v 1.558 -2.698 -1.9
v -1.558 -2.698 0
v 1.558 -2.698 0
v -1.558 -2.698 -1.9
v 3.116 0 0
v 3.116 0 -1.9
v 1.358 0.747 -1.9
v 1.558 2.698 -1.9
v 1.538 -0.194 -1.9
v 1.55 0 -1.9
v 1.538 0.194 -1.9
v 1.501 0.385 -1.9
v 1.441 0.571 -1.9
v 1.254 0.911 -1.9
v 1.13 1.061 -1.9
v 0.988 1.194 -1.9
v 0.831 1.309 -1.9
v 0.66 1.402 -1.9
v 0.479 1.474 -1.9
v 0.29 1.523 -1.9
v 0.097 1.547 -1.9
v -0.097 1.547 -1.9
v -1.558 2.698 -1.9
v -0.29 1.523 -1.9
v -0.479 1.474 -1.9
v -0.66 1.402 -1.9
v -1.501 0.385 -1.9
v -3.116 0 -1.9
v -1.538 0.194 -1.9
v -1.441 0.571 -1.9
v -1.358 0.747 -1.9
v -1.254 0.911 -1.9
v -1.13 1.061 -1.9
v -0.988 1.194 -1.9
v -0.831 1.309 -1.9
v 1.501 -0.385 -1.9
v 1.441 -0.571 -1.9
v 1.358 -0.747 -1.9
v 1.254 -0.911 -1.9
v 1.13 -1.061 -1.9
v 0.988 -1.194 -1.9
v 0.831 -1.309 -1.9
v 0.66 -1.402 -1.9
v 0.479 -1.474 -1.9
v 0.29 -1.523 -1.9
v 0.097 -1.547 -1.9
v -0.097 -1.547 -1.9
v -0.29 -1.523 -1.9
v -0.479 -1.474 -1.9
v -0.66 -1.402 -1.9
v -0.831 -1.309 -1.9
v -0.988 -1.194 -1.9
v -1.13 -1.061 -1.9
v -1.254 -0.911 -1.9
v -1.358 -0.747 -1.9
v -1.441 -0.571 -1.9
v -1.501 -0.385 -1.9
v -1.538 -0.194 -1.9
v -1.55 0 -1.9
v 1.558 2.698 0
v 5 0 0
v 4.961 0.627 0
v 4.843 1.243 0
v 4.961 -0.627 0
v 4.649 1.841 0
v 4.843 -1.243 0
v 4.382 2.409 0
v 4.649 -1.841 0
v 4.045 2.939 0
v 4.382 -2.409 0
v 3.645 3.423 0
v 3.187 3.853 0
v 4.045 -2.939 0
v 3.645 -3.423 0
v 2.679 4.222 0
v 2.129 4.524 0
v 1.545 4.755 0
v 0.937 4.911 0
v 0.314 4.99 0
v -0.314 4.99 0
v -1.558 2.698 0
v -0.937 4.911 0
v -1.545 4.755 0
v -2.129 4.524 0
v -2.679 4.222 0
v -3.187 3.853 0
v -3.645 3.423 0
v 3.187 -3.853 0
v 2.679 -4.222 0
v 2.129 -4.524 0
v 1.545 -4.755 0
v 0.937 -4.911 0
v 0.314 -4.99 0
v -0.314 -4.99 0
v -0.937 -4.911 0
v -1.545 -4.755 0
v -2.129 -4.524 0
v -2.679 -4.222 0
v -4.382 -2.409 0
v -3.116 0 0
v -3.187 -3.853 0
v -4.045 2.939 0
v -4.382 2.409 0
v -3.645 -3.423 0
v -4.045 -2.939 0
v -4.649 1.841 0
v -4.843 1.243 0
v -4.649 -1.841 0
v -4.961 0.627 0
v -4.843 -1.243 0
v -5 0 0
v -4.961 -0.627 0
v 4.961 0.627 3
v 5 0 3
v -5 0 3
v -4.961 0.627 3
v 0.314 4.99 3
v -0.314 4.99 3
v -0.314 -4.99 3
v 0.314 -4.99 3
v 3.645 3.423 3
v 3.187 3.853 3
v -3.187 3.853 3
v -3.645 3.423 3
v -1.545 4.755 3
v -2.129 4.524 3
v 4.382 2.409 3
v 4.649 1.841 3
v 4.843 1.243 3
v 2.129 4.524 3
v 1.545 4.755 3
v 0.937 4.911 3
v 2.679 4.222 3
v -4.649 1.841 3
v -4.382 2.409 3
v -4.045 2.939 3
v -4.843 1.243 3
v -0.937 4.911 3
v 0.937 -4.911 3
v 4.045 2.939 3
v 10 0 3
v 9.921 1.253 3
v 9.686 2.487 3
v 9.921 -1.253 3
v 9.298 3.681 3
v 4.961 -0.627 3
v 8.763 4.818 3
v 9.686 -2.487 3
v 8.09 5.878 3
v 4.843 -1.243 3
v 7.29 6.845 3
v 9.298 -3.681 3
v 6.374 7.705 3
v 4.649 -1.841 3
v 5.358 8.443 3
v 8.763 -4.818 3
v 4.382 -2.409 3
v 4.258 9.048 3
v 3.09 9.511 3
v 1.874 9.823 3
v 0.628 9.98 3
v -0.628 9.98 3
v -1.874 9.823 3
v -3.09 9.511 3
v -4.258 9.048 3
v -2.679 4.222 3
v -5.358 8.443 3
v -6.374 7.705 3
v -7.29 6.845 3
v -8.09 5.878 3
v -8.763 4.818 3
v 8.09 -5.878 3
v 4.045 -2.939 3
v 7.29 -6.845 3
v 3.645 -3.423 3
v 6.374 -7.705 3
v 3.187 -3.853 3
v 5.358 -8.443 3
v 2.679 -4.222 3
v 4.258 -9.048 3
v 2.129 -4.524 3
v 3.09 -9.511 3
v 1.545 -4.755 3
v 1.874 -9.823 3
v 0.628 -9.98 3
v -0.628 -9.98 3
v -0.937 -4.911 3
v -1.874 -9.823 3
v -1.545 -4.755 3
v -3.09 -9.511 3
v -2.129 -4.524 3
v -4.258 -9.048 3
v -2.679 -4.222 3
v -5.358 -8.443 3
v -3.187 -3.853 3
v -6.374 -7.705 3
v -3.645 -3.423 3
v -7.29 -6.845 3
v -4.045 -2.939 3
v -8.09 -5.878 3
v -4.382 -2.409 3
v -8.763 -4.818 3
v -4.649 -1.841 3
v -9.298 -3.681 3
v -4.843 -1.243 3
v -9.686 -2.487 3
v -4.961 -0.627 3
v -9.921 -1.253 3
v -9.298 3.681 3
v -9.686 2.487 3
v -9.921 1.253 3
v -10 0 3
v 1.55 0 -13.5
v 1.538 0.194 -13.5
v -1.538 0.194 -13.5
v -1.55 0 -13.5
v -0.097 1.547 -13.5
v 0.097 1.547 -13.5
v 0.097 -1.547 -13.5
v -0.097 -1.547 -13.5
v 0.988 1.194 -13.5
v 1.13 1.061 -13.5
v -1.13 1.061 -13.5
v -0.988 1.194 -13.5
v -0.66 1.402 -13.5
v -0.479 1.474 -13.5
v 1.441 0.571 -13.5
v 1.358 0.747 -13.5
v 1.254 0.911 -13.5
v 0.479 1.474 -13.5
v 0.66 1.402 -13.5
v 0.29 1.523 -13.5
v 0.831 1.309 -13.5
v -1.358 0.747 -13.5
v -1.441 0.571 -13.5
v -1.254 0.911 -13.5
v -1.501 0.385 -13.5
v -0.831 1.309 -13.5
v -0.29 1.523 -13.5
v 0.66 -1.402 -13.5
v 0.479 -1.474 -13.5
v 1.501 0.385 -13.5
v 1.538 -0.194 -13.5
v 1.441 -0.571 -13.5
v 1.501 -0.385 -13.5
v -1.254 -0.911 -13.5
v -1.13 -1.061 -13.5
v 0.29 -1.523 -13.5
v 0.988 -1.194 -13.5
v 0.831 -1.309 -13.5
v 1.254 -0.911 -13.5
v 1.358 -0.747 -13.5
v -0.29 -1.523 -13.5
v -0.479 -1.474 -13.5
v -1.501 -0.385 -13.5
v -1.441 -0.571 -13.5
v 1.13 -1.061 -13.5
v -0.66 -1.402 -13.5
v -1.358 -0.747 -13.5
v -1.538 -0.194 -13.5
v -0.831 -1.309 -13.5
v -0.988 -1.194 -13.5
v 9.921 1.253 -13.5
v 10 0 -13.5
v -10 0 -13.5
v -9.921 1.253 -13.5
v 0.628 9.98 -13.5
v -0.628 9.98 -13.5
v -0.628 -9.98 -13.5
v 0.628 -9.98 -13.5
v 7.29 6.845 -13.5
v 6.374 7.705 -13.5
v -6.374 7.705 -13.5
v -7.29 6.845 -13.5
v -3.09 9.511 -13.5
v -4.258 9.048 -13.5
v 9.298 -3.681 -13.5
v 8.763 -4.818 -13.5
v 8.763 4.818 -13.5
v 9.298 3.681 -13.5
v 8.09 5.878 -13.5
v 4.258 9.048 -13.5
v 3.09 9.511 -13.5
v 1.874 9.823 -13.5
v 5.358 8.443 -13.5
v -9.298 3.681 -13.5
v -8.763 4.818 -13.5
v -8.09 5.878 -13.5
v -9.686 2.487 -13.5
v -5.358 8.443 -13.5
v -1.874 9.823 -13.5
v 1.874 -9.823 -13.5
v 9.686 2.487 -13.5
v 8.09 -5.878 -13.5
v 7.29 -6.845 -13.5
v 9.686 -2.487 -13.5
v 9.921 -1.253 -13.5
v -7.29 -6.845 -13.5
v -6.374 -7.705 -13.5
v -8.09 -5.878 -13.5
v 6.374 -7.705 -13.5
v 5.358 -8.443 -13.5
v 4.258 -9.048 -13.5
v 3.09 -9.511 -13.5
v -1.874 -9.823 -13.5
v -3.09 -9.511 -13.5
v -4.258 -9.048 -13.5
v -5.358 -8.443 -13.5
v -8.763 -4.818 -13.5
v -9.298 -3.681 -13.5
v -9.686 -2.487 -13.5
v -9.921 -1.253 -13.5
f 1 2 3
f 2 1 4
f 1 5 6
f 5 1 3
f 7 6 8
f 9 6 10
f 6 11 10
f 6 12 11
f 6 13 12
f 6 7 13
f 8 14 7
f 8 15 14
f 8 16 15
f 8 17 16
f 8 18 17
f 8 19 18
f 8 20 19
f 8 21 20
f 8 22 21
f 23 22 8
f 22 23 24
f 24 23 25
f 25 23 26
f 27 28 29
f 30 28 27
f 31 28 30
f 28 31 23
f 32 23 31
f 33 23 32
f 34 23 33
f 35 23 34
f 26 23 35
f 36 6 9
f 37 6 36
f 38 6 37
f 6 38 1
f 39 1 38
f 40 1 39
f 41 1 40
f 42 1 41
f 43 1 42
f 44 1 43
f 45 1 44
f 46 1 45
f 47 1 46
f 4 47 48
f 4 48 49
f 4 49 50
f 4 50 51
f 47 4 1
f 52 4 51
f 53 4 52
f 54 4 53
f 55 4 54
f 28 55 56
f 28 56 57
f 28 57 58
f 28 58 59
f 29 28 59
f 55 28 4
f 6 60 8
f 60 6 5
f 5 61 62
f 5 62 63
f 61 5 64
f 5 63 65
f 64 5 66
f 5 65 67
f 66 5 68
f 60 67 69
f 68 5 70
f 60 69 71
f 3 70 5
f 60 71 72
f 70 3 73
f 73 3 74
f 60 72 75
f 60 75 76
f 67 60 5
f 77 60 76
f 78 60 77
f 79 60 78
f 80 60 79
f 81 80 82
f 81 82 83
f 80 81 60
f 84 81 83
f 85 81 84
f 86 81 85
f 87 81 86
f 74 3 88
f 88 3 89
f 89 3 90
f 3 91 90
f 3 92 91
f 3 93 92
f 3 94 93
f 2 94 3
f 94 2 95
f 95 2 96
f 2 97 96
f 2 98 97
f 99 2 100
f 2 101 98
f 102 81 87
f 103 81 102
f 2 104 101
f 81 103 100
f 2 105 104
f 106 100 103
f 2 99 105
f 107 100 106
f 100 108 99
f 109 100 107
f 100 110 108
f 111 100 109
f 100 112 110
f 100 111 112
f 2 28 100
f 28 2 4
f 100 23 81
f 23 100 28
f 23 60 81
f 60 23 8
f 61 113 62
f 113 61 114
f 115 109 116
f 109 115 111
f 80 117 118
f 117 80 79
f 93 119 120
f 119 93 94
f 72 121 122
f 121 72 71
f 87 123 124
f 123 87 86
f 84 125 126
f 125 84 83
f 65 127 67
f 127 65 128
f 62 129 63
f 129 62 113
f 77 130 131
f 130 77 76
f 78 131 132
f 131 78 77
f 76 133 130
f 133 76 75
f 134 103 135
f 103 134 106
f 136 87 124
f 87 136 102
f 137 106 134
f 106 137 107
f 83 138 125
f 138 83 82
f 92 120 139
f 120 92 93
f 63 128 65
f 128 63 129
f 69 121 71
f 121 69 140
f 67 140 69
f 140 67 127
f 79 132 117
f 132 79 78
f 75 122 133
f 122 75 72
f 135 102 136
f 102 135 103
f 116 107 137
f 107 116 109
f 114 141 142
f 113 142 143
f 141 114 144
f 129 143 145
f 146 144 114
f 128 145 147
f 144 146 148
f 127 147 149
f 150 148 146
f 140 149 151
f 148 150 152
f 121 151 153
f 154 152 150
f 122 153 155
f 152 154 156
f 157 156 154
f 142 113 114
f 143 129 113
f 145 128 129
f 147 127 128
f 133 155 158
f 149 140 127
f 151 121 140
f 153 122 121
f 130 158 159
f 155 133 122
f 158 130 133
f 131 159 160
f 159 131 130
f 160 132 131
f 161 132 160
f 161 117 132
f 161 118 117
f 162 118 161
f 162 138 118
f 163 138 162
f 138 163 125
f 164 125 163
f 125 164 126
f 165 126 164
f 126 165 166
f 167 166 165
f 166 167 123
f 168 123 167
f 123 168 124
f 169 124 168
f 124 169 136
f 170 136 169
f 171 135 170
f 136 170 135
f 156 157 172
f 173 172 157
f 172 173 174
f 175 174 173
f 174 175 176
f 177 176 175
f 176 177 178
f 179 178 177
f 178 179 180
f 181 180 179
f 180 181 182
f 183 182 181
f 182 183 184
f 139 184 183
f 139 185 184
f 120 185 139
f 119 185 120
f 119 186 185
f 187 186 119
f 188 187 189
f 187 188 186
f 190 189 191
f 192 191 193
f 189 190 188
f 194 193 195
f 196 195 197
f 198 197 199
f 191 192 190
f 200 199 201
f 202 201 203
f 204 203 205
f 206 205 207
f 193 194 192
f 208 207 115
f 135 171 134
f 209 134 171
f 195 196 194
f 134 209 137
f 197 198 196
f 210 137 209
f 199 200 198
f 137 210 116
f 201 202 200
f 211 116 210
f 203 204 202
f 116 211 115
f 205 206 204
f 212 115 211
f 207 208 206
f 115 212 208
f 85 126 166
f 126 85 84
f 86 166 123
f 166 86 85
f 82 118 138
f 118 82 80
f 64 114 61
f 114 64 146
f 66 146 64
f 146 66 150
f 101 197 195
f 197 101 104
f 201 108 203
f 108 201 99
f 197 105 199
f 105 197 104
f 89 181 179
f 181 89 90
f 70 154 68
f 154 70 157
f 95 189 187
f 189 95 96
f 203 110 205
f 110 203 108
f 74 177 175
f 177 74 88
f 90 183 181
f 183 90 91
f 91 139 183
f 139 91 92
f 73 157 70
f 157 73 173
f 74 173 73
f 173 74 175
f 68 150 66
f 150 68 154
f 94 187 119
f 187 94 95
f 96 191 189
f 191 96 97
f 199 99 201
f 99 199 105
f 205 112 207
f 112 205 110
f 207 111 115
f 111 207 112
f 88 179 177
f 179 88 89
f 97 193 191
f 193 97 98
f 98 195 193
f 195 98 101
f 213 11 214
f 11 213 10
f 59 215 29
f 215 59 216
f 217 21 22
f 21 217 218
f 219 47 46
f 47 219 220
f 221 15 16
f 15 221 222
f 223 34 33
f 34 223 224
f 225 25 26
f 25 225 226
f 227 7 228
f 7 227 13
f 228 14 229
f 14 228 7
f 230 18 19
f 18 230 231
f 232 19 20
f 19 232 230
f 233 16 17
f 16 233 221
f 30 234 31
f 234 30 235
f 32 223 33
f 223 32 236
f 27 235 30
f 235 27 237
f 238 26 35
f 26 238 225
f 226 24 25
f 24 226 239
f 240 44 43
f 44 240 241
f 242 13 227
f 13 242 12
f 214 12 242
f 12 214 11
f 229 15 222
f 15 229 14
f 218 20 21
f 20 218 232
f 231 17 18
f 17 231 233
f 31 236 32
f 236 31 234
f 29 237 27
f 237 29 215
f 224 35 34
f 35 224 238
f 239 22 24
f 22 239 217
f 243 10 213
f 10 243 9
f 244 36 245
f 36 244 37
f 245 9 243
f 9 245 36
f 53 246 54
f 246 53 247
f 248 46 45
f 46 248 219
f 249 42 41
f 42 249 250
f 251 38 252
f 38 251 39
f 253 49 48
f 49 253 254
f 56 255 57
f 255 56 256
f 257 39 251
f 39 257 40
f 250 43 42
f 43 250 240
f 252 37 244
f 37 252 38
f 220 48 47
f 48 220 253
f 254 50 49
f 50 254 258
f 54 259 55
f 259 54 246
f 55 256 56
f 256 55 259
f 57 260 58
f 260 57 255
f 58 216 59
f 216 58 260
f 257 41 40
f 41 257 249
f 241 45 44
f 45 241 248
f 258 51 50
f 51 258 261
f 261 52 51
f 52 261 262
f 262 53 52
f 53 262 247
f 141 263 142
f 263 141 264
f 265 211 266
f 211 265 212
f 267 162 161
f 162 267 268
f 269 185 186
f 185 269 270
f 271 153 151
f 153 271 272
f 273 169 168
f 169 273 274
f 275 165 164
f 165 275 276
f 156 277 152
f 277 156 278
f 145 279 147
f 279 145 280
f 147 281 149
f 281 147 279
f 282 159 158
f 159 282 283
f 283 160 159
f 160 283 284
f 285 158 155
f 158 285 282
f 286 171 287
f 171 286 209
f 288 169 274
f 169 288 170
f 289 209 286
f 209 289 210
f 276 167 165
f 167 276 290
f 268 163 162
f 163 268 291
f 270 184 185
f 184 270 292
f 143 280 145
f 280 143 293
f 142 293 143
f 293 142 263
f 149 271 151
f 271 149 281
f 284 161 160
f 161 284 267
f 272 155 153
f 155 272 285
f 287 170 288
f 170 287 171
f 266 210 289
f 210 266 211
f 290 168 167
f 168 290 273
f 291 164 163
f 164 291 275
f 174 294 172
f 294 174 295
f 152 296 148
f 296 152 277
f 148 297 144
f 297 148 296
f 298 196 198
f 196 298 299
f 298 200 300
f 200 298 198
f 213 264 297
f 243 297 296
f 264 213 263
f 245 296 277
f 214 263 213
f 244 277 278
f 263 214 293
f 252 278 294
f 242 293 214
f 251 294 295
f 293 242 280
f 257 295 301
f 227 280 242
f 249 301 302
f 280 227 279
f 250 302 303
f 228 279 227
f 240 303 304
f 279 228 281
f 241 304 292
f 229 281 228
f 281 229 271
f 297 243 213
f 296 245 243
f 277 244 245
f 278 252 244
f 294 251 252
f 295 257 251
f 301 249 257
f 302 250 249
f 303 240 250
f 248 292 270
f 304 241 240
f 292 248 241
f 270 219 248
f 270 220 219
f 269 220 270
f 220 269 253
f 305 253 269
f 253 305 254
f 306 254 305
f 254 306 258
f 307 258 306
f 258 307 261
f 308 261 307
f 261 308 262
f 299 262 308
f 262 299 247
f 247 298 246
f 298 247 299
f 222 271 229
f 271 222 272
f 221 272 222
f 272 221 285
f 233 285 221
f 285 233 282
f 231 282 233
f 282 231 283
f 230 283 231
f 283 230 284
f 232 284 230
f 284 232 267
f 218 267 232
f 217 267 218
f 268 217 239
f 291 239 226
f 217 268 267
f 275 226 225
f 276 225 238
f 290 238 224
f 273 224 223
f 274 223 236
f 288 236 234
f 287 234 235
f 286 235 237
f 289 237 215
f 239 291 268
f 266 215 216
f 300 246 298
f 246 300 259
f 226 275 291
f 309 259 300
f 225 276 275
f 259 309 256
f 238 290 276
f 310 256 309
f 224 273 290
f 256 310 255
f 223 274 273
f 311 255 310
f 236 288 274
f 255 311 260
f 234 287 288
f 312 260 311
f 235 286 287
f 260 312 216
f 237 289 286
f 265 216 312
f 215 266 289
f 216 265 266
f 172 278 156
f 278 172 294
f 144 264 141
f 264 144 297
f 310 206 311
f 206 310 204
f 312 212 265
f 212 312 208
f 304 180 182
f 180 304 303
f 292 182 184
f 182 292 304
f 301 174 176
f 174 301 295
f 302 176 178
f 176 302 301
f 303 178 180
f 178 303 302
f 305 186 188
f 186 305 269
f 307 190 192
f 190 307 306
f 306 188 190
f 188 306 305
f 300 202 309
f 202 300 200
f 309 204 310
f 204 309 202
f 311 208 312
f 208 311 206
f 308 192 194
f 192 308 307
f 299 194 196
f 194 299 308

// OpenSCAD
$fn = 50;

difference() {
	union() {
		translate(v = [0, 0, -13.5]) {
			cylinder(h = 16.5, r = 10.0);
		}
	}
	union() {
		translate(v = [0, 0, 0]) {
			rotate(a = [0, 0, 0]) {
				difference() {
					union() {
						translate(v = [0, 0, -1.9]) {
							linear_extrude(height = 1.9) {
								polygon(points = [[3.1158, 0.0], [1.5579000000000005, 2.698361953111554], [-1.5578999999999994, 2.6983619531115544], [-3.1158, 3.815754496783323e-16], [-1.5579000000000014, -2.6983619531115535], [1.557899999999998, -2.6983619531115552]]);
							}
						}
					}
					union();
				}
			}
		}
		#cylinder(h = 3, r = 5.0);
		#translate(v = [0, 0, -100.0]) {
			cylinder(h = 200, r = 1.55);
		}
	}
}
